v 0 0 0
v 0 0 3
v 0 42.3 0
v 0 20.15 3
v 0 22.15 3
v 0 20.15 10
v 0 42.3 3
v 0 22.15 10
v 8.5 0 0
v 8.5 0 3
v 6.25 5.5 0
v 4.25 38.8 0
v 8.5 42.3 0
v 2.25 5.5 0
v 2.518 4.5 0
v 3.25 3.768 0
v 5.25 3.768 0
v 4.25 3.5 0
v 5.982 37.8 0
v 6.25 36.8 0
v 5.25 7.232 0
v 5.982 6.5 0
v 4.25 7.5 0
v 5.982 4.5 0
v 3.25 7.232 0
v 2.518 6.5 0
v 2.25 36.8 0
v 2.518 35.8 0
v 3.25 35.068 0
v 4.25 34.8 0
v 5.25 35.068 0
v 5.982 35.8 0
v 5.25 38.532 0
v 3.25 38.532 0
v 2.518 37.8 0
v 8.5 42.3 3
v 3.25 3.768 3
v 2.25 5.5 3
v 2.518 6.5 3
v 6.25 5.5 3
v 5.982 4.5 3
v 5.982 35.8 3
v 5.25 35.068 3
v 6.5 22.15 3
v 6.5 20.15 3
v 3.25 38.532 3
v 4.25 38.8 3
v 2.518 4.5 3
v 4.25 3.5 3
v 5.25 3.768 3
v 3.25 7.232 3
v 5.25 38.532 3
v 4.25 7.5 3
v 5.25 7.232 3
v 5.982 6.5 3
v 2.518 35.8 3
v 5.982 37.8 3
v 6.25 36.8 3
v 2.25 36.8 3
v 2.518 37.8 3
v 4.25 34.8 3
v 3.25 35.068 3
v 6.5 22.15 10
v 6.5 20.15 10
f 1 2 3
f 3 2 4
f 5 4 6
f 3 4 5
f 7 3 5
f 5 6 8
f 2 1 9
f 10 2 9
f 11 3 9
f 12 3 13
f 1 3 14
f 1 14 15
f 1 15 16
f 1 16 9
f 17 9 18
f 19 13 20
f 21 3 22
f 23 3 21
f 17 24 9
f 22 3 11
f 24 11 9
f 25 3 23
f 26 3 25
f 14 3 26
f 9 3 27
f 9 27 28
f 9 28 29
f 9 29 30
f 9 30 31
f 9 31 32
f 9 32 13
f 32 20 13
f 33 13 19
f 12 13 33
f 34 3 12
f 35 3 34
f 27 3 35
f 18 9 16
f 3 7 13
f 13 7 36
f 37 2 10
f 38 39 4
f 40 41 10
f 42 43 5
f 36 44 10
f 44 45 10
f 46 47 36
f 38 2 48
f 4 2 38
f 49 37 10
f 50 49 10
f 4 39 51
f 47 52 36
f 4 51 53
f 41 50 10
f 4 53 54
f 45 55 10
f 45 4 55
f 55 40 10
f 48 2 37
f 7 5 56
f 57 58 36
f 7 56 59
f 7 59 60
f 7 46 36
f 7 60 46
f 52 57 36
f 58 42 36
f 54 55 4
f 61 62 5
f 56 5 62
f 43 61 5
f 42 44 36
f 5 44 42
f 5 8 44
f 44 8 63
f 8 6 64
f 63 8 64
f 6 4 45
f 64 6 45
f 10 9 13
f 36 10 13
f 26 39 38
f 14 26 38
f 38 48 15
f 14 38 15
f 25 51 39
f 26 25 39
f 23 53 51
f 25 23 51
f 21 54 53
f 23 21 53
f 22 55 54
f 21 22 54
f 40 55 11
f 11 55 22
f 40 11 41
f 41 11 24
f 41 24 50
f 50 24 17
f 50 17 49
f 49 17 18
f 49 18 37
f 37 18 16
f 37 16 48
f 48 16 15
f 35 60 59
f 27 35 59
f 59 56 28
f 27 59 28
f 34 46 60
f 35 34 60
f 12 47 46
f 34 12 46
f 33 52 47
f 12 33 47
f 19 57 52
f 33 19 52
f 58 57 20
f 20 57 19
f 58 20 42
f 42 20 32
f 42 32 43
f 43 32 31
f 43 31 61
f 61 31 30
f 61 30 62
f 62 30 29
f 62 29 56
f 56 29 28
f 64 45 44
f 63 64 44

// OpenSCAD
thickness=3;
nema17Width=42.30;
nema17ScrewWidth = nema17Width-11;

width=8.5;
length=nema17Width;

bladeThickness=2;

union(){
	difference(){
		cube([width, length, thickness]);
		translate([width/2,5.5,0])cylinder(h=10,r=4/2,$fn=12);
		translate([width/2,nema17ScrewWidth+5.5,0])cylinder(h=10,r=4/2,$fn=12);
	}
	translate([0,(length-bladeThickness)/2,0])cube([width-2, bladeThickness, 10]);
	
}
